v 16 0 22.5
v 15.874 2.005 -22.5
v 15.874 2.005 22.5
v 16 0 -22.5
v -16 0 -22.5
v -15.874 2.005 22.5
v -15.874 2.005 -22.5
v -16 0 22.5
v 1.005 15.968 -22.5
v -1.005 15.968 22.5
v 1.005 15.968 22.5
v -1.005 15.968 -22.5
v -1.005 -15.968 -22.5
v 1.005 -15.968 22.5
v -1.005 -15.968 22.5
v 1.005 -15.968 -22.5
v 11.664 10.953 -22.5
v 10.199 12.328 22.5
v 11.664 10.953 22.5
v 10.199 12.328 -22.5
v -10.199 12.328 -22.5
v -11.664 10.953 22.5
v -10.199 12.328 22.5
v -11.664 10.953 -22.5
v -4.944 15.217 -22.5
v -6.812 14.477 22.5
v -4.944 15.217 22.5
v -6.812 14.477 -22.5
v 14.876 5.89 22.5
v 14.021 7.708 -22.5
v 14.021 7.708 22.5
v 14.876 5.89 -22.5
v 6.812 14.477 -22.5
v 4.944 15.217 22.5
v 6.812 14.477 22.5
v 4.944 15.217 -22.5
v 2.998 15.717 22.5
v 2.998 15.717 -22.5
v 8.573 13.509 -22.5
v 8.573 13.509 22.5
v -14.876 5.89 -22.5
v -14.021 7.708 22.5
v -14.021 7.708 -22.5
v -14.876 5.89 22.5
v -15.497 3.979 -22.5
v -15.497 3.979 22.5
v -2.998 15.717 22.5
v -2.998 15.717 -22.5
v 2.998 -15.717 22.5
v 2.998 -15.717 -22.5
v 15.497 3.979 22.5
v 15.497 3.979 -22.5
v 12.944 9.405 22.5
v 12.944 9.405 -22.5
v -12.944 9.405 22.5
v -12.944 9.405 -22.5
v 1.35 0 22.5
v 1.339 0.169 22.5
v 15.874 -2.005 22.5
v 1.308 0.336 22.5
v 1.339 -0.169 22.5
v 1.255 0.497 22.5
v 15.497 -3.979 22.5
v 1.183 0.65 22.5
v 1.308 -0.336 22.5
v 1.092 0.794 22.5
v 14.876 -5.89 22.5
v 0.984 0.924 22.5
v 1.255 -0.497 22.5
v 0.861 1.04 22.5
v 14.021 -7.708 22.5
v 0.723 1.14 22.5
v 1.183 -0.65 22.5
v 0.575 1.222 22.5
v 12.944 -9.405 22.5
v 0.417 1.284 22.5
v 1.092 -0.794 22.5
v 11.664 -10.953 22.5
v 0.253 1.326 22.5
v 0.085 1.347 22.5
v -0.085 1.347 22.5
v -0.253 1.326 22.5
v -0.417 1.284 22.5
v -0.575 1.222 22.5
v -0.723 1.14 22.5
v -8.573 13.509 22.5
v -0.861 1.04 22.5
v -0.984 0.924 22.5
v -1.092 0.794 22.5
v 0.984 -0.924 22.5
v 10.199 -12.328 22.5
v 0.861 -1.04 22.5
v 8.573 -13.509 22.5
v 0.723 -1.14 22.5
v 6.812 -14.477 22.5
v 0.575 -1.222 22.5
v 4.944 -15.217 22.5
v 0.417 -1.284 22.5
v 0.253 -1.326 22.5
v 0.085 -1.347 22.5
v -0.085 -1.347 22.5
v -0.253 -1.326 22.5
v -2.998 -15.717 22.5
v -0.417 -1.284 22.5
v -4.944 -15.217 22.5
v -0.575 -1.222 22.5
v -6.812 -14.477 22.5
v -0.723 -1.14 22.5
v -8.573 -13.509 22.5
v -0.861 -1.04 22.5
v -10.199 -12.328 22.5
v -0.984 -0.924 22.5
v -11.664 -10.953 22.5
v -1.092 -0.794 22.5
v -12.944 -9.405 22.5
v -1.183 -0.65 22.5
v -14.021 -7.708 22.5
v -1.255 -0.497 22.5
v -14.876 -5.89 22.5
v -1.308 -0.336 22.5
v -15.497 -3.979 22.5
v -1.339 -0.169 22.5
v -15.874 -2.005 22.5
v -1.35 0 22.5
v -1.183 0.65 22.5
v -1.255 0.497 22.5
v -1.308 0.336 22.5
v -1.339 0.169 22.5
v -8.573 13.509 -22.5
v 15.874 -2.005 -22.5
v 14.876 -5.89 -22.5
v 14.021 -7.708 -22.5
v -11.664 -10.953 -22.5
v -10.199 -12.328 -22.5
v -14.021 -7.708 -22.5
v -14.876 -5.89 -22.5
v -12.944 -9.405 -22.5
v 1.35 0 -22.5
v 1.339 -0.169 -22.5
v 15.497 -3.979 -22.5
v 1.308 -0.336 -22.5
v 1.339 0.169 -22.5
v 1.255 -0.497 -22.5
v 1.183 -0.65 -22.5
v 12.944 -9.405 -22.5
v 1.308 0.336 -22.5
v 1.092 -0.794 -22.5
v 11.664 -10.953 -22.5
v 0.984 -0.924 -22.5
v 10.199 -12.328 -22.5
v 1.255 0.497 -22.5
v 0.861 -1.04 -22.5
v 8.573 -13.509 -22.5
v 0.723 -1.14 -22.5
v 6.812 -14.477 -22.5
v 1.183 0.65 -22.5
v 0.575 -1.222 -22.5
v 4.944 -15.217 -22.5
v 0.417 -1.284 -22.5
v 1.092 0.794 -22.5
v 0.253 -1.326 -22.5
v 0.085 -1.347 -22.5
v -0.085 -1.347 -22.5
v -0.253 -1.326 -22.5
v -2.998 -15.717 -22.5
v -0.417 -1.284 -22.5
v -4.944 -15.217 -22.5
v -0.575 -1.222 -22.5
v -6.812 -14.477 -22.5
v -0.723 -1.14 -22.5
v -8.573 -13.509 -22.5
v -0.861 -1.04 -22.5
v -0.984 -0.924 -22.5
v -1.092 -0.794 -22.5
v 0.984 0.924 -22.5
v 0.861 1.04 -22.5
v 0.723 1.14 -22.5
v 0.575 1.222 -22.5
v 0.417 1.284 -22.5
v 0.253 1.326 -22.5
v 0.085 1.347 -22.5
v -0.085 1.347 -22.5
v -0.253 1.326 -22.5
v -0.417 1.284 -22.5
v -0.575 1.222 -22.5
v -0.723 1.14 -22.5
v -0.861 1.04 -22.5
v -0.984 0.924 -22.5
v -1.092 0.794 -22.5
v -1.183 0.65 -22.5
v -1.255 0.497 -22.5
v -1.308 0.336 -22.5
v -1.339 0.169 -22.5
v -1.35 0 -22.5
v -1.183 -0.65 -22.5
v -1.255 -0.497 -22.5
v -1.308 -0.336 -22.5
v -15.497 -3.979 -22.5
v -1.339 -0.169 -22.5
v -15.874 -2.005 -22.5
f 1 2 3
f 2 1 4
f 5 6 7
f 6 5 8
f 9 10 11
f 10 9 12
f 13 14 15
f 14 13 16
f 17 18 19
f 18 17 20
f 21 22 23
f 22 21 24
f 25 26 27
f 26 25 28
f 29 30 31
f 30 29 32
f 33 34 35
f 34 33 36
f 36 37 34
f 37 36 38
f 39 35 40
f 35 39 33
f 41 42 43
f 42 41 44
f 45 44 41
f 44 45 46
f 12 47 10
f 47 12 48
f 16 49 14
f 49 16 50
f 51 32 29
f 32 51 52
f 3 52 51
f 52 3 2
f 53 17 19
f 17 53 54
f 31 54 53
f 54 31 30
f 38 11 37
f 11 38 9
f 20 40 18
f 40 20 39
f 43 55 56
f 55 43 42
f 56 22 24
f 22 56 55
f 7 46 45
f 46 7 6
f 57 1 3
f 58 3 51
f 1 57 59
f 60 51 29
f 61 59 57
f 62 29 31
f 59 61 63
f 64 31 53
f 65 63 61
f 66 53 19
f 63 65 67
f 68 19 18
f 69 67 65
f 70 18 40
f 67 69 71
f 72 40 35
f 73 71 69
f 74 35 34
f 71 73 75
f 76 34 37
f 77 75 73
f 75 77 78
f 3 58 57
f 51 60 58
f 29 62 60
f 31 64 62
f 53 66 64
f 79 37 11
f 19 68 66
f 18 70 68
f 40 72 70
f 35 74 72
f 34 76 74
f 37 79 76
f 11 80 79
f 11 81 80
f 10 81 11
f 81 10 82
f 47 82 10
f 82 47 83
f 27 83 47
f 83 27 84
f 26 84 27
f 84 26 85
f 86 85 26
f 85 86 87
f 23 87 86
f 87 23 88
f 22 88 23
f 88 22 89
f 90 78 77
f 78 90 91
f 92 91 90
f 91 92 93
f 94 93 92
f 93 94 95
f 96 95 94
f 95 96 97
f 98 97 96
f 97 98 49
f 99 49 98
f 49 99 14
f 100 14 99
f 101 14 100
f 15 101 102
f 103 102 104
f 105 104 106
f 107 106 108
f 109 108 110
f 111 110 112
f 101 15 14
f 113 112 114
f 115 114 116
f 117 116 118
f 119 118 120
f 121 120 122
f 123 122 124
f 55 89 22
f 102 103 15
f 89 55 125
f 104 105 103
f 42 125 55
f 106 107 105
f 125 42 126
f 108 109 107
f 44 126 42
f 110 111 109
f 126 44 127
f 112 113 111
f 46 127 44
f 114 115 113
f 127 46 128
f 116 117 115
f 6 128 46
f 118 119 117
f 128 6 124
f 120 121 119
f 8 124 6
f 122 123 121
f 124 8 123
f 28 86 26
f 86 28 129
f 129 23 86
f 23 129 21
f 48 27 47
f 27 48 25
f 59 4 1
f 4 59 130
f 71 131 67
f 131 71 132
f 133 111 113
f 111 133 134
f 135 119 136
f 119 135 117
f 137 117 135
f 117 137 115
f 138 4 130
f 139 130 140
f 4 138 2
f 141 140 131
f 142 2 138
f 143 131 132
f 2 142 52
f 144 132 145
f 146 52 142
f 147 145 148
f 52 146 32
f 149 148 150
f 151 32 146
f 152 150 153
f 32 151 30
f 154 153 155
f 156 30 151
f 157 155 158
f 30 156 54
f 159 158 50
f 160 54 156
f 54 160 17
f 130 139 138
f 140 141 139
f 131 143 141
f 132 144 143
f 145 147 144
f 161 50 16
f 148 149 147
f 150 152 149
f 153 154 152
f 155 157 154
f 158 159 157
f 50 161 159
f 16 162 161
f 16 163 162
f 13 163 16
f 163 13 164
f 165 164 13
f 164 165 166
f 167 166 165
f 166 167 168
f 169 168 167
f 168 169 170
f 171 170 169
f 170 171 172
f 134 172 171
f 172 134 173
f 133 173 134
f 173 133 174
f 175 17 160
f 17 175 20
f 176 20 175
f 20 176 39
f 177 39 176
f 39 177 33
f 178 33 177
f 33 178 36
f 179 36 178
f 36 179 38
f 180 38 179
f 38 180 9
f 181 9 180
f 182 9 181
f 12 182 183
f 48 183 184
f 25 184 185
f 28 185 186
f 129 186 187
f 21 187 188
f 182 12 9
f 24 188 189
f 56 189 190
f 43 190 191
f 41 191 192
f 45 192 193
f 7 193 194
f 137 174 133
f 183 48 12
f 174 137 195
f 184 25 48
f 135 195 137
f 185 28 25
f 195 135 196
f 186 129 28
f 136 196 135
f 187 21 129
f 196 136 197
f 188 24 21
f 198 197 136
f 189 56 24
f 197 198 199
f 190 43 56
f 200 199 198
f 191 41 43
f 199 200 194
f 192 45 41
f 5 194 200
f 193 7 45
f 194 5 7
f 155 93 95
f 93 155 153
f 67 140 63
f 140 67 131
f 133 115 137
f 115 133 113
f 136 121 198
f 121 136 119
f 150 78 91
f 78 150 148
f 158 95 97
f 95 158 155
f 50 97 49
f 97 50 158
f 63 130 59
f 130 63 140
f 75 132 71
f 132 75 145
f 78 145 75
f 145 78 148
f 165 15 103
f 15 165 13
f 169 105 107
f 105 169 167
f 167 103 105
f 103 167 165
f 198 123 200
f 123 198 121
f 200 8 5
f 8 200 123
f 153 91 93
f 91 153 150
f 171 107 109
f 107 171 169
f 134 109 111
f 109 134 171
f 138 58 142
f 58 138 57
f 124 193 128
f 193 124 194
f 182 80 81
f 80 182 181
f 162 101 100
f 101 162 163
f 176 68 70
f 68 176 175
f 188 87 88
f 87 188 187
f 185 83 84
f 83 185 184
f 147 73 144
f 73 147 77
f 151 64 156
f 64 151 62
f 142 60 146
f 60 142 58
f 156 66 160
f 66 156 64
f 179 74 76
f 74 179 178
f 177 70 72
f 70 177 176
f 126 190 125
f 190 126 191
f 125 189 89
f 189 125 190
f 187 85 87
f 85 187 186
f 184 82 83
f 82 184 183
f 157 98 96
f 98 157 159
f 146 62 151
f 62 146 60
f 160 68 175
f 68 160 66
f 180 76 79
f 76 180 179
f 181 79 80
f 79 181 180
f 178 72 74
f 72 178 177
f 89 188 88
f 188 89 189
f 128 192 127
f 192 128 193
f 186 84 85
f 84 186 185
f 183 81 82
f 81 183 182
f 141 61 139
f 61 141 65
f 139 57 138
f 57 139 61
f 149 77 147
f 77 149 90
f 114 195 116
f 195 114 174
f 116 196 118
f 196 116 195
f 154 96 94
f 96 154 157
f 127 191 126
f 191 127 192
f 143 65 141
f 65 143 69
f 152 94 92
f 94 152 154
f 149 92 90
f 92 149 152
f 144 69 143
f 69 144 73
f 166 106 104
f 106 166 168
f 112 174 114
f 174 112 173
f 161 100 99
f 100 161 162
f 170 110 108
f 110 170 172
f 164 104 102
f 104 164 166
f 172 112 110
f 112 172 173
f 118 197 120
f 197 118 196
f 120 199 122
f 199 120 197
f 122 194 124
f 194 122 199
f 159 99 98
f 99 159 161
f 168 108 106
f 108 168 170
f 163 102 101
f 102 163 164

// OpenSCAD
$fn = 50;


difference() {
	union() {
		translate(v = [0, 0, -22.5000000000]) {
			cylinder(h = 45, r = 16.0000000000);
		}
	}
	union() {
		translate(v = [0, 0, -100.0000000000]) {
			cylinder(h = 200, r = 1.3500000000);
		}
	}
}
